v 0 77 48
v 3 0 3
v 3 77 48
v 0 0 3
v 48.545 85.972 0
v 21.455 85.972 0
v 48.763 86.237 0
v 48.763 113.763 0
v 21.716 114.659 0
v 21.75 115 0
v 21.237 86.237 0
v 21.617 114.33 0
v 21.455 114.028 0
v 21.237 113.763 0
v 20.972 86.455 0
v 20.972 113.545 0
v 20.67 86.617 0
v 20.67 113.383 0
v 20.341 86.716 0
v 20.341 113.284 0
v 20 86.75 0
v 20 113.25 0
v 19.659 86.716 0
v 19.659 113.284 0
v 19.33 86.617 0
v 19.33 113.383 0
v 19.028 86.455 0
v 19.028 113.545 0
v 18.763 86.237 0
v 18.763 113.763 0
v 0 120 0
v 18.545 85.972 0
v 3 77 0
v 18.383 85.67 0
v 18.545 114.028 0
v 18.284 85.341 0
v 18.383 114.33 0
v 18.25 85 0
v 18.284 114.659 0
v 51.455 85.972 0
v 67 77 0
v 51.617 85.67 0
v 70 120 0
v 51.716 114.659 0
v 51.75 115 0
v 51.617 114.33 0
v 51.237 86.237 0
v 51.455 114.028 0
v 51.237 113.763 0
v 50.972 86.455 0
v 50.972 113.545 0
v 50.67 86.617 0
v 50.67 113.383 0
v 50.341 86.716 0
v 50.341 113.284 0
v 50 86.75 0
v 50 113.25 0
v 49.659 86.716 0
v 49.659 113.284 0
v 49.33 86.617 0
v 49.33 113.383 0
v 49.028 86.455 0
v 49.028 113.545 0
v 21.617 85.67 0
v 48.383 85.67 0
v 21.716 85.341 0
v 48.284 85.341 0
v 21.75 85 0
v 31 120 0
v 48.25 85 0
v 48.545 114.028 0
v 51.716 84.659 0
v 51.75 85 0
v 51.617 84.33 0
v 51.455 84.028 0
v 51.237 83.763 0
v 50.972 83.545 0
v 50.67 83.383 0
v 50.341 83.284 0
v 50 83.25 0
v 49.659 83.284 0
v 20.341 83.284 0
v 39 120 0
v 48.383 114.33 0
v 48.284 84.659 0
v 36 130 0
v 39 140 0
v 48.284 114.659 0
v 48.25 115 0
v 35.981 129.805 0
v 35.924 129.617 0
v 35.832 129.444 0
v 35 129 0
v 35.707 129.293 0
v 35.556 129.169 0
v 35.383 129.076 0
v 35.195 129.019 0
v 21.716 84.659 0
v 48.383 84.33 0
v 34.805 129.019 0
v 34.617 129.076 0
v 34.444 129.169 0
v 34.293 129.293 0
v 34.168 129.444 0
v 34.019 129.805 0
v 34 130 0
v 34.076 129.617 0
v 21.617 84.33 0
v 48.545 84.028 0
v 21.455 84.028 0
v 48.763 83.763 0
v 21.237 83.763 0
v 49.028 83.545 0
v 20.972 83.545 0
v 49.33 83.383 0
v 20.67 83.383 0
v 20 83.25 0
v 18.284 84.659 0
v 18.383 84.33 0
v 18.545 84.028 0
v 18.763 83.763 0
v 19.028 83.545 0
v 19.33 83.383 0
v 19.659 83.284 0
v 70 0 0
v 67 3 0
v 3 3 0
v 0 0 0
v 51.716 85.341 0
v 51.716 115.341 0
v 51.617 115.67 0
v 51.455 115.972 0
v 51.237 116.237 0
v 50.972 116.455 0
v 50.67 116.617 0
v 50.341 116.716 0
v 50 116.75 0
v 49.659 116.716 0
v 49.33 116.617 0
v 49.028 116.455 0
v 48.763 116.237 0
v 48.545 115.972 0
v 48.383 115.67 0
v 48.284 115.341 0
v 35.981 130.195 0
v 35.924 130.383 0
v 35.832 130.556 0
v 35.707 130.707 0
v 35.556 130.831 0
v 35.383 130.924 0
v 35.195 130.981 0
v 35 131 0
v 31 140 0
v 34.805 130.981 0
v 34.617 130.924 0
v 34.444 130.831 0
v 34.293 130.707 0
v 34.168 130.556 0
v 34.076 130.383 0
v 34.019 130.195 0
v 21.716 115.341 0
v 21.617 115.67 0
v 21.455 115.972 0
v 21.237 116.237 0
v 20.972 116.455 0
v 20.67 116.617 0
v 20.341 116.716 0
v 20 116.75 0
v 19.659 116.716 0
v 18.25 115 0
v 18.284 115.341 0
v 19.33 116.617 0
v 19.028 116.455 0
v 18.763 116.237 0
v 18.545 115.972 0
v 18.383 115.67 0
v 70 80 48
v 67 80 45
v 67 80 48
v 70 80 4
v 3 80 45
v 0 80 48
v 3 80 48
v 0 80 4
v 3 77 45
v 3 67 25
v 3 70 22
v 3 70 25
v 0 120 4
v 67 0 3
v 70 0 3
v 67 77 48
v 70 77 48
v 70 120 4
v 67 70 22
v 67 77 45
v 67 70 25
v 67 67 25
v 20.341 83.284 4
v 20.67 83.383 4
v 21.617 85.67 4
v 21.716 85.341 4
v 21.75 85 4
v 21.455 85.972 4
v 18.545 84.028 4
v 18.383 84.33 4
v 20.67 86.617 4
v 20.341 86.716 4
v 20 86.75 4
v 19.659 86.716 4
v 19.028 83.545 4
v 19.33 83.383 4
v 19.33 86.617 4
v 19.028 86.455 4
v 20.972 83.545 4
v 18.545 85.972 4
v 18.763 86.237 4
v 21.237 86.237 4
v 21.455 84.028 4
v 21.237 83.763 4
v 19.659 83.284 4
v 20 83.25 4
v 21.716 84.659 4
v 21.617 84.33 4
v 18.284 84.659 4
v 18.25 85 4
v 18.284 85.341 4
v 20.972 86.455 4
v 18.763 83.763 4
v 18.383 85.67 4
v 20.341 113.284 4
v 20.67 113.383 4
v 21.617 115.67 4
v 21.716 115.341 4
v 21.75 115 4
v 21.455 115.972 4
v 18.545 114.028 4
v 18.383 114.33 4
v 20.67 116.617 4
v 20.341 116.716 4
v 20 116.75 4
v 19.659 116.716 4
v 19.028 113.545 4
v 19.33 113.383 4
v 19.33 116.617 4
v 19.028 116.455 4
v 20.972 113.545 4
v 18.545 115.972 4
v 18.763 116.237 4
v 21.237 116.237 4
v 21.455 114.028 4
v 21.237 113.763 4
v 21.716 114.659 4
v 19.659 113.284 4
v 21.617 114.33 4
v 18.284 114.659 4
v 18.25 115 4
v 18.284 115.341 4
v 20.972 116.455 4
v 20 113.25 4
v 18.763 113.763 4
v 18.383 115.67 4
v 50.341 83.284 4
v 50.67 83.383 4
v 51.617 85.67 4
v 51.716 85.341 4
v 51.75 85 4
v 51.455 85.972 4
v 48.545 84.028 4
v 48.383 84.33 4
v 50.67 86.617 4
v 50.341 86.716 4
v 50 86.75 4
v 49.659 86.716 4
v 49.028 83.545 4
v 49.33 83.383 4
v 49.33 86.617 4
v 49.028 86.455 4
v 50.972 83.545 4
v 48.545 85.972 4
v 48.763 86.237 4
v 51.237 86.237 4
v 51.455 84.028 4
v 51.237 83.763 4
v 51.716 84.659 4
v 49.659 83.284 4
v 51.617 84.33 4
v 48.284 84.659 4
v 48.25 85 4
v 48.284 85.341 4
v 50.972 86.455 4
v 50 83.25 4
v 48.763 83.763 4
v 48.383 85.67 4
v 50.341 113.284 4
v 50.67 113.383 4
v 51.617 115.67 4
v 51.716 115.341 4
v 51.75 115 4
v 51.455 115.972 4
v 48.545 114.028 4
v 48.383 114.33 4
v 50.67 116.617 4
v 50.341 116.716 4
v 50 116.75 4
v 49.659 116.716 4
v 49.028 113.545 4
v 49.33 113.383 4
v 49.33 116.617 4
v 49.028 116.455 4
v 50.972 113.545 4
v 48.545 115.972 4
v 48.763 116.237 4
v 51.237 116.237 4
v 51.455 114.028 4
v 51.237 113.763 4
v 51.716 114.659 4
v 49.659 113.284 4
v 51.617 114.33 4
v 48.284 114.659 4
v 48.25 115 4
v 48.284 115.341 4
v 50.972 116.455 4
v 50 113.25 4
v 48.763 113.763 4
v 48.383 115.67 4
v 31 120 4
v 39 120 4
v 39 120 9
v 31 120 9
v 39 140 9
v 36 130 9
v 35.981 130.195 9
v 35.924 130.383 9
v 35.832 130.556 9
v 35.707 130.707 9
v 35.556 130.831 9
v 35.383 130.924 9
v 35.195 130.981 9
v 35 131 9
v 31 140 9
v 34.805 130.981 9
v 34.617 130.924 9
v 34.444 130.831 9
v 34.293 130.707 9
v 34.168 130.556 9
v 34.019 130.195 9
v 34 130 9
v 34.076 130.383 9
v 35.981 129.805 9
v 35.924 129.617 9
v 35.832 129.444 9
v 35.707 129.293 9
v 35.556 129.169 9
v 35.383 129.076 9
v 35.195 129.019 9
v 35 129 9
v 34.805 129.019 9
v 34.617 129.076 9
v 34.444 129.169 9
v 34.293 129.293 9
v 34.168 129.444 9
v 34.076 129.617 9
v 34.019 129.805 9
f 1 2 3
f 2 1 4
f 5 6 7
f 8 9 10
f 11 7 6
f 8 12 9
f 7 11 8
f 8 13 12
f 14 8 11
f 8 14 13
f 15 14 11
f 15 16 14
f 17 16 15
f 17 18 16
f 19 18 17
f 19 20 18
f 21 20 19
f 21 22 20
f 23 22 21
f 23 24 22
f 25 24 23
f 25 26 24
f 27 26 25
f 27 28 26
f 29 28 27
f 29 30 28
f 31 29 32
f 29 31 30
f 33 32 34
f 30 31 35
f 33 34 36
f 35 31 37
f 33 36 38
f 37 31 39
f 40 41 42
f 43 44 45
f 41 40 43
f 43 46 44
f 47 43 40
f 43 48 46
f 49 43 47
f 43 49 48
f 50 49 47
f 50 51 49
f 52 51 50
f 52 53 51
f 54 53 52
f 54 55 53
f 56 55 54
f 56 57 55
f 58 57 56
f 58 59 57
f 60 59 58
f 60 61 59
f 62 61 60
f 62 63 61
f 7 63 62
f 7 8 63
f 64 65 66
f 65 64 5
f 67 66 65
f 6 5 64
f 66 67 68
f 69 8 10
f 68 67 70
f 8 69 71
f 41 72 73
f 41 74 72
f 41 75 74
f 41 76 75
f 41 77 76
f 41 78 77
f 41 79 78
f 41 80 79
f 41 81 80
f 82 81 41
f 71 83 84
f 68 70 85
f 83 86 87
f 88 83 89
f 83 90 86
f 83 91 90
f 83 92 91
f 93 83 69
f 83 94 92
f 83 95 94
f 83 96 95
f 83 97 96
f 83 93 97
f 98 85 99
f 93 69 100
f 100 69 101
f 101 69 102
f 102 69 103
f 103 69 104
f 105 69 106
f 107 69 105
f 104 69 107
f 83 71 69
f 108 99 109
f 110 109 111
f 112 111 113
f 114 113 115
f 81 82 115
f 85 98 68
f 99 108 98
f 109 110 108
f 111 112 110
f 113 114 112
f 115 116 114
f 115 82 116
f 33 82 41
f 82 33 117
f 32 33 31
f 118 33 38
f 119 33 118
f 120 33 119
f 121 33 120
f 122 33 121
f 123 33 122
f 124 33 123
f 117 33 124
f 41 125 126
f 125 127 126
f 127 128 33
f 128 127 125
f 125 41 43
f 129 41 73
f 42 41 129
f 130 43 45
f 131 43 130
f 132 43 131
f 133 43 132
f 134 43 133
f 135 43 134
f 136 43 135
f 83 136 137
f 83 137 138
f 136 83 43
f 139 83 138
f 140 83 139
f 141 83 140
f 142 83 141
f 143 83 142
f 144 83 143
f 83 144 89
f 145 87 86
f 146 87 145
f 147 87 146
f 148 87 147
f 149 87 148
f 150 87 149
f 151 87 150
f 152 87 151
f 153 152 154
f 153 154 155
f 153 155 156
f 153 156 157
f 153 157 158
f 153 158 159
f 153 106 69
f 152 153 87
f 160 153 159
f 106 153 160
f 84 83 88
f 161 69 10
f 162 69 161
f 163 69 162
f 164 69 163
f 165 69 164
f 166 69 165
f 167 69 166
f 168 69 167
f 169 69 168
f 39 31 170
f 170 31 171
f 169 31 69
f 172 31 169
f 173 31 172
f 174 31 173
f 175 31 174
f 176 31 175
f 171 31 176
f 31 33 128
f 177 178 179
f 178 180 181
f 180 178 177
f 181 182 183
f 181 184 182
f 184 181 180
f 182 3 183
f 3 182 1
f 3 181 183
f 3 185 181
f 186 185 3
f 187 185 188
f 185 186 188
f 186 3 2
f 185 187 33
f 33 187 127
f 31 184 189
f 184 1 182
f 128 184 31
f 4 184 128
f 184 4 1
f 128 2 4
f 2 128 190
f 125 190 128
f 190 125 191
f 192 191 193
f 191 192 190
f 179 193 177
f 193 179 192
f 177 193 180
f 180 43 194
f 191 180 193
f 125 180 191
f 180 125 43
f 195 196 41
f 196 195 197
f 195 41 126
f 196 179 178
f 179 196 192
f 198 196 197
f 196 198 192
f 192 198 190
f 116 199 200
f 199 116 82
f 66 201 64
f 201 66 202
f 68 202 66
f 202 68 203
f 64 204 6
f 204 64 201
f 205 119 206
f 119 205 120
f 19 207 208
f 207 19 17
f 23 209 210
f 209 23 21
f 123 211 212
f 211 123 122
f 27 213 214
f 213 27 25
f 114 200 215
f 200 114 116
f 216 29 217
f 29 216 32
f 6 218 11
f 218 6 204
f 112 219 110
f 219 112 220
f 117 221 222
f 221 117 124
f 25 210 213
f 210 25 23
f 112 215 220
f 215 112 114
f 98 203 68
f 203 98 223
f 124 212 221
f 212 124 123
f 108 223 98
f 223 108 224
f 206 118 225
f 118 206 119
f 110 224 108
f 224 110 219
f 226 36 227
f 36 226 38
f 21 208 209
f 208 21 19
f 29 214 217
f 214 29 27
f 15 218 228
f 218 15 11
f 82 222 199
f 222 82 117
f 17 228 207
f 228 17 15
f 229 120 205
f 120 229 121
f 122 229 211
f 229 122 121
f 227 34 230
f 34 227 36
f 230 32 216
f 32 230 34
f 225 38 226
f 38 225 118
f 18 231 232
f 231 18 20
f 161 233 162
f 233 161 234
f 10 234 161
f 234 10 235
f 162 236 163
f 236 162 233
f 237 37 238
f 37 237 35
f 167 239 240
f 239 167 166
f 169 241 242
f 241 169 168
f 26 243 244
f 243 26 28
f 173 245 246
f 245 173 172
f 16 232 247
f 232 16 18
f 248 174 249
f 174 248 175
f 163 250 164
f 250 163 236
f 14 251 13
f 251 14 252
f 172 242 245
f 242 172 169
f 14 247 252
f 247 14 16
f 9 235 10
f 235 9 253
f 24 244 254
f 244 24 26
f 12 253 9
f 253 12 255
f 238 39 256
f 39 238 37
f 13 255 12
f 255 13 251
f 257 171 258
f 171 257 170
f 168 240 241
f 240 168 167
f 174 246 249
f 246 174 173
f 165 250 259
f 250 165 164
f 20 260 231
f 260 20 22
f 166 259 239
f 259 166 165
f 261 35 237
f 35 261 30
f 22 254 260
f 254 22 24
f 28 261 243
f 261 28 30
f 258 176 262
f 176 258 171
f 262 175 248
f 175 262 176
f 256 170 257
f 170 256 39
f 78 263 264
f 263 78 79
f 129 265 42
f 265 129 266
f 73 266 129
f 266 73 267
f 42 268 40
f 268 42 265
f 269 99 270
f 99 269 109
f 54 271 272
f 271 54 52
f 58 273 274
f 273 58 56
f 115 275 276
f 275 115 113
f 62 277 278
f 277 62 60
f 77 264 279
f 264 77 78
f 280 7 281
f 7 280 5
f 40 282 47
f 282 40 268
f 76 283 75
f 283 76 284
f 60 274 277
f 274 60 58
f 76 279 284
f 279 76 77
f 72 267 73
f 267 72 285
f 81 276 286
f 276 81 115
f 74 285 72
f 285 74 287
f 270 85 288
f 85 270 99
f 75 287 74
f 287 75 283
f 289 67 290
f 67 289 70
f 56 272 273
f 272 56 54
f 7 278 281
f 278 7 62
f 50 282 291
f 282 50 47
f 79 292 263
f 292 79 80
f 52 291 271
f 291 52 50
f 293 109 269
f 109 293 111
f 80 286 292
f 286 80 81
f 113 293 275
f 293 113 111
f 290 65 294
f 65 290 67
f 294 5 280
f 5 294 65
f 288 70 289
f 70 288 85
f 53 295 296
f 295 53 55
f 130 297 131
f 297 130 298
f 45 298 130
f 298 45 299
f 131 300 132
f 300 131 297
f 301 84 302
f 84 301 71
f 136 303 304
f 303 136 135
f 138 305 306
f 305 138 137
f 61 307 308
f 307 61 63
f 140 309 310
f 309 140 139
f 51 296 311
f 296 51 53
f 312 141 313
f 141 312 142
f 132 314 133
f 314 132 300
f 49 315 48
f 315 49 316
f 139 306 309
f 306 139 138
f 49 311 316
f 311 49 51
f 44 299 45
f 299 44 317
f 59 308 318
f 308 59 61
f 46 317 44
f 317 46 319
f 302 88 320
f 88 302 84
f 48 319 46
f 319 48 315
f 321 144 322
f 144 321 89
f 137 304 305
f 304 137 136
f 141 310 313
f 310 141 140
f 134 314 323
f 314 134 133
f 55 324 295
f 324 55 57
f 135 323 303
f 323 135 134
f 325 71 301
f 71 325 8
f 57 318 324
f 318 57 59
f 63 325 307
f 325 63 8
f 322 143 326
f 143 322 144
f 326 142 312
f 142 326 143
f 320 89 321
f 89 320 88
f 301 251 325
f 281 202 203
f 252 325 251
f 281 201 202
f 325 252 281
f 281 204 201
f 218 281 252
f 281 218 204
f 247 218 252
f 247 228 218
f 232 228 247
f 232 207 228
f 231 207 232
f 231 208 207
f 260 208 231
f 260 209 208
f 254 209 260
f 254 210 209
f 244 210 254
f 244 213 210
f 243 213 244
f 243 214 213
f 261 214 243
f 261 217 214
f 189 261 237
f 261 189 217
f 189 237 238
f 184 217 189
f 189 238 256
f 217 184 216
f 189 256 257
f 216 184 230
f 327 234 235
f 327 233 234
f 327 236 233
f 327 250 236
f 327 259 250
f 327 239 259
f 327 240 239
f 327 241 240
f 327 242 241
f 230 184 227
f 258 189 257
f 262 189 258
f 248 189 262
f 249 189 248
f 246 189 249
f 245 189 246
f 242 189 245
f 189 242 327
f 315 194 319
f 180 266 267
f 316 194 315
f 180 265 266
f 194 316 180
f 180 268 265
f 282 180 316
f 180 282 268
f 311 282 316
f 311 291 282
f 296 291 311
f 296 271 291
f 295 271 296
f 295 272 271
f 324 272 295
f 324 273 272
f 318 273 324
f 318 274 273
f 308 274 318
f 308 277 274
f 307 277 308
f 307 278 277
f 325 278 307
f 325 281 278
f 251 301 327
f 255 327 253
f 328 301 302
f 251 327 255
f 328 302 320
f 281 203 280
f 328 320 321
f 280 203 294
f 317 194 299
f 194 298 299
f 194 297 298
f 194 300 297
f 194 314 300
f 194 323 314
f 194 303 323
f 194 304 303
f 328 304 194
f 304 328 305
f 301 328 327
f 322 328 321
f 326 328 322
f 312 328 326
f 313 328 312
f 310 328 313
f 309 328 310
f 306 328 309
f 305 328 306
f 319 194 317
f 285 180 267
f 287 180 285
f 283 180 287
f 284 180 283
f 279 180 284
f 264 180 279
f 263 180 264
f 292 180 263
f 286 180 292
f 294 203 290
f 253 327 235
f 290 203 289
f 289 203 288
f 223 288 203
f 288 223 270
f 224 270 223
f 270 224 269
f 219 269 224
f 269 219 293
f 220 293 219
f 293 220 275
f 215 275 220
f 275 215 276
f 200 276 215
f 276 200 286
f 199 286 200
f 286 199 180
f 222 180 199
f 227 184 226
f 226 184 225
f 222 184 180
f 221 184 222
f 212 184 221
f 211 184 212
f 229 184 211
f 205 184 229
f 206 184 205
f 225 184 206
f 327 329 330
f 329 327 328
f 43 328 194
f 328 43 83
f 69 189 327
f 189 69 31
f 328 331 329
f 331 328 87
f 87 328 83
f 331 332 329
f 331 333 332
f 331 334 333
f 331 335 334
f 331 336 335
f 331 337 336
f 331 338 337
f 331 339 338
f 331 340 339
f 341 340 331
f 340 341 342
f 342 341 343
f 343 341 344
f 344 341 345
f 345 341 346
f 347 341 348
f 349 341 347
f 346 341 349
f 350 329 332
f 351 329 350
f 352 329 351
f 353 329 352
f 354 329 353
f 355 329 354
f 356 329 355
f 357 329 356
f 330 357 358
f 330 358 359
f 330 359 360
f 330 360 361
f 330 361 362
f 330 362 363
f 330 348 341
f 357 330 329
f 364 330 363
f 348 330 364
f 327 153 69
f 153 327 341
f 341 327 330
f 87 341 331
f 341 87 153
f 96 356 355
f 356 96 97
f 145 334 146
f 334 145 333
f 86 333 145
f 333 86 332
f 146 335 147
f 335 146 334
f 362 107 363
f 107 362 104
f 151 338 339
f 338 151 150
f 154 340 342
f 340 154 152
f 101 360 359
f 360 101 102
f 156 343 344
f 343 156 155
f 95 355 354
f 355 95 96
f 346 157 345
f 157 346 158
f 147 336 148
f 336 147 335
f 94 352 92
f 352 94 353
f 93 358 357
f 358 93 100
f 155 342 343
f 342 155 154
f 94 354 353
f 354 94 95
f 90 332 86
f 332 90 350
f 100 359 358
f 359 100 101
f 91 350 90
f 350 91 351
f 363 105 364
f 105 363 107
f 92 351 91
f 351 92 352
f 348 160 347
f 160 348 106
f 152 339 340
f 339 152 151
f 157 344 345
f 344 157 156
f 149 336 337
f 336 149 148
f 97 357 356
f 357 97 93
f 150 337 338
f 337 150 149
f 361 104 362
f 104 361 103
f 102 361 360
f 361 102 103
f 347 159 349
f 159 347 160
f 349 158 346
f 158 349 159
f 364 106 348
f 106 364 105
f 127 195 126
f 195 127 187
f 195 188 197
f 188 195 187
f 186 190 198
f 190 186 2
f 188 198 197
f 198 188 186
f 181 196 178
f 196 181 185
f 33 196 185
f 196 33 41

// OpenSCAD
// Golf Ball Retriever Scoop for Ultron Rover
// Designed by Ultron - February 2026
// For Freenove 4WD Smart Car Kit + SG90 Servo

// === PARAMETERS ===
// Golf ball specs
ball_diameter = 42.67;  // Standard golf ball diameter (mm)
ball_radius = ball_diameter / 2;

// Scoop dimensions (generous for forgiving capture)
scoop_width = 70;       // 70mm wide (~2.75") - forgiving alignment
scoop_length = 80;      // 80mm long - enough to fully capture ball
scoop_depth = 25;       // How deep the channel is
wall_thickness = 3;     // Wall thickness

// Mounting plate
mount_length = 40;      // Extension for chassis mounting
mount_width = scoop_width;
mount_thickness = 4;
mount_hole_diameter = 3.5;  // M3 screws
mount_hole_spacing = 30;    // Holes 30mm apart

// Servo horn mount
servo_horn_width = 8;
servo_horn_length = 20;
servo_horn_hole = 2;    // Servo horn screw hole

// Back wall (prevents ball from rolling out)
back_wall_height = 20;

// === MODULES ===

// The curved scoop channel
module scoop_channel() {
    difference() {
        // Outer shell
        translate([0, 0, 0])
        hull() {
            // Front lip (curved entry)
            translate([0, 0, 0])
                cube([scoop_width, wall_thickness, wall_thickness]);
            // Back of scoop
            translate([0, scoop_length - wall_thickness, scoop_depth])
                cube([scoop_width, wall_thickness, wall_thickness]);
        }
        
        // Inner cutout (the channel)
        translate([wall_thickness, -1, wall_thickness])
        hull() {
            translate([0, 0, 0])
                cube([scoop_width - 2*wall_thickness, wall_thickness + 1, 0.1]);
            translate([0, scoop_length - wall_thickness, scoop_depth - wall_thickness])
                cube([scoop_width - 2*wall_thickness, wall_thickness + 1, 0.1]);
        }
    }
}

// Curved cradle for the ball (sits at back of scoop)
module ball_cradle() {
    translate([scoop_width/2, scoop_length - ball_radius - 5, scoop_depth])
    difference() {
        // Cradle cylinder
        rotate([0, 90, 0])
            cylinder(h = scoop_width - 2*wall_thickness, r = ball_radius + wall_thickness, center = true, $fn = 64);
        
        // Carve out ball space
        rotate([0, 90, 0])
            cylinder(h = scoop_width, r = ball_radius + 1, center = true, $fn = 64);
        
        // Cut off bottom half
        translate([0, 0, -ball_radius - wall_thickness])
            cube([scoop_width + 10, ball_diameter + 10, ball_diameter], center = true);
        
        // Cut off top (open top for ball entry)
        translate([0, 0, ball_radius])
            cube([scoop_width + 10, ball_diameter + 10, ball_diameter], center = true);
    }
}

// Back wall to prevent ball rollout
module back_wall() {
    translate([0, scoop_length - wall_thickness, 0])
        cube([scoop_width, wall_thickness, back_wall_height + scoop_depth]);
}

// Side walls for guidance
module side_walls() {
    // Left wall
    hull() {
        cube([wall_thickness, scoop_length, wall_thickness]);
        translate([0, scoop_length - wall_thickness, scoop_depth + back_wall_height])
            cube([wall_thickness, wall_thickness, wall_thickness]);
    }
    
    // Right wall
    translate([scoop_width - wall_thickness, 0, 0])
    hull() {
        cube([wall_thickness, scoop_length, wall_thickness]);
        translate([0, scoop_length - wall_thickness, scoop_depth + back_wall_height])
            cube([wall_thickness, wall_thickness, wall_thickness]);
    }
}

// Mounting plate with screw holes
module mounting_plate() {
    difference() {
        // Plate
        translate([0, scoop_length, 0])
            cube([mount_width, mount_length, mount_thickness]);
        
        // Screw holes (4 holes in a rectangle)
        hole_x_offset = (mount_width - mount_hole_spacing) / 2;
        hole_y_offset = (mount_length - mount_hole_spacing) / 2;
        
        for (x = [hole_x_offset, mount_width - hole_x_offset]) {
            for (y = [hole_y_offset, mount_length - hole_y_offset]) {
                translate([x, scoop_length + y, -1])
                    cylinder(h = mount_thickness + 2, d = mount_hole_diameter, $fn = 32);
            }
        }
    }
}

// Servo horn attachment point
module servo_mount() {
    translate([scoop_width/2 - servo_horn_width/2, scoop_length + mount_length, 0]) {
        difference() {
            // Horn mount block
            cube([servo_horn_width, servo_horn_length, mount_thickness + 5]);
            
            // Servo horn screw hole
            translate([servo_horn_width/2, servo_horn_length/2, -1])
                cylinder(h = mount_thickness + 7, d = servo_horn_hole, $fn = 32);
        }
    }
}

// Floor of the scoop (curved ramp)
module scoop_floor() {
    translate([wall_thickness, 0, 0])
    hull() {
        // Front edge (at ground level)
        cube([scoop_width - 2*wall_thickness, wall_thickness, wall_thickness]);
        
        // Back edge (raised to cradle height)
        translate([0, scoop_length - wall_thickness - 10, scoop_depth - wall_thickness])
            cube([scoop_width - 2*wall_thickness, wall_thickness, wall_thickness]);
    }
}

// === MAIN ASSEMBLY ===
module golf_ball_scoop() {
    color("DodgerBlue") {
        scoop_floor();
        side_walls();
        back_wall();
        mounting_plate();
        servo_mount();
    }
    
    // Show ball for reference (comment out for export)
    // %translate([scoop_width/2, scoop_length - ball_radius - 10, scoop_depth + ball_radius])
    //     sphere(d = ball_diameter, $fn = 64);
}

// Render it!
golf_ball_scoop();

// === EXPORT INFO ===
// To export STL:
// 1. Open in OpenSCAD
// 2. Press F6 to render
// 3. File > Export > Export as STL
//
// Print settings recommended:
// - Layer height: 0.2mm
// - Infill: 20%
// - Supports: Yes (for curved areas)
// - Material: PLA or PETG
